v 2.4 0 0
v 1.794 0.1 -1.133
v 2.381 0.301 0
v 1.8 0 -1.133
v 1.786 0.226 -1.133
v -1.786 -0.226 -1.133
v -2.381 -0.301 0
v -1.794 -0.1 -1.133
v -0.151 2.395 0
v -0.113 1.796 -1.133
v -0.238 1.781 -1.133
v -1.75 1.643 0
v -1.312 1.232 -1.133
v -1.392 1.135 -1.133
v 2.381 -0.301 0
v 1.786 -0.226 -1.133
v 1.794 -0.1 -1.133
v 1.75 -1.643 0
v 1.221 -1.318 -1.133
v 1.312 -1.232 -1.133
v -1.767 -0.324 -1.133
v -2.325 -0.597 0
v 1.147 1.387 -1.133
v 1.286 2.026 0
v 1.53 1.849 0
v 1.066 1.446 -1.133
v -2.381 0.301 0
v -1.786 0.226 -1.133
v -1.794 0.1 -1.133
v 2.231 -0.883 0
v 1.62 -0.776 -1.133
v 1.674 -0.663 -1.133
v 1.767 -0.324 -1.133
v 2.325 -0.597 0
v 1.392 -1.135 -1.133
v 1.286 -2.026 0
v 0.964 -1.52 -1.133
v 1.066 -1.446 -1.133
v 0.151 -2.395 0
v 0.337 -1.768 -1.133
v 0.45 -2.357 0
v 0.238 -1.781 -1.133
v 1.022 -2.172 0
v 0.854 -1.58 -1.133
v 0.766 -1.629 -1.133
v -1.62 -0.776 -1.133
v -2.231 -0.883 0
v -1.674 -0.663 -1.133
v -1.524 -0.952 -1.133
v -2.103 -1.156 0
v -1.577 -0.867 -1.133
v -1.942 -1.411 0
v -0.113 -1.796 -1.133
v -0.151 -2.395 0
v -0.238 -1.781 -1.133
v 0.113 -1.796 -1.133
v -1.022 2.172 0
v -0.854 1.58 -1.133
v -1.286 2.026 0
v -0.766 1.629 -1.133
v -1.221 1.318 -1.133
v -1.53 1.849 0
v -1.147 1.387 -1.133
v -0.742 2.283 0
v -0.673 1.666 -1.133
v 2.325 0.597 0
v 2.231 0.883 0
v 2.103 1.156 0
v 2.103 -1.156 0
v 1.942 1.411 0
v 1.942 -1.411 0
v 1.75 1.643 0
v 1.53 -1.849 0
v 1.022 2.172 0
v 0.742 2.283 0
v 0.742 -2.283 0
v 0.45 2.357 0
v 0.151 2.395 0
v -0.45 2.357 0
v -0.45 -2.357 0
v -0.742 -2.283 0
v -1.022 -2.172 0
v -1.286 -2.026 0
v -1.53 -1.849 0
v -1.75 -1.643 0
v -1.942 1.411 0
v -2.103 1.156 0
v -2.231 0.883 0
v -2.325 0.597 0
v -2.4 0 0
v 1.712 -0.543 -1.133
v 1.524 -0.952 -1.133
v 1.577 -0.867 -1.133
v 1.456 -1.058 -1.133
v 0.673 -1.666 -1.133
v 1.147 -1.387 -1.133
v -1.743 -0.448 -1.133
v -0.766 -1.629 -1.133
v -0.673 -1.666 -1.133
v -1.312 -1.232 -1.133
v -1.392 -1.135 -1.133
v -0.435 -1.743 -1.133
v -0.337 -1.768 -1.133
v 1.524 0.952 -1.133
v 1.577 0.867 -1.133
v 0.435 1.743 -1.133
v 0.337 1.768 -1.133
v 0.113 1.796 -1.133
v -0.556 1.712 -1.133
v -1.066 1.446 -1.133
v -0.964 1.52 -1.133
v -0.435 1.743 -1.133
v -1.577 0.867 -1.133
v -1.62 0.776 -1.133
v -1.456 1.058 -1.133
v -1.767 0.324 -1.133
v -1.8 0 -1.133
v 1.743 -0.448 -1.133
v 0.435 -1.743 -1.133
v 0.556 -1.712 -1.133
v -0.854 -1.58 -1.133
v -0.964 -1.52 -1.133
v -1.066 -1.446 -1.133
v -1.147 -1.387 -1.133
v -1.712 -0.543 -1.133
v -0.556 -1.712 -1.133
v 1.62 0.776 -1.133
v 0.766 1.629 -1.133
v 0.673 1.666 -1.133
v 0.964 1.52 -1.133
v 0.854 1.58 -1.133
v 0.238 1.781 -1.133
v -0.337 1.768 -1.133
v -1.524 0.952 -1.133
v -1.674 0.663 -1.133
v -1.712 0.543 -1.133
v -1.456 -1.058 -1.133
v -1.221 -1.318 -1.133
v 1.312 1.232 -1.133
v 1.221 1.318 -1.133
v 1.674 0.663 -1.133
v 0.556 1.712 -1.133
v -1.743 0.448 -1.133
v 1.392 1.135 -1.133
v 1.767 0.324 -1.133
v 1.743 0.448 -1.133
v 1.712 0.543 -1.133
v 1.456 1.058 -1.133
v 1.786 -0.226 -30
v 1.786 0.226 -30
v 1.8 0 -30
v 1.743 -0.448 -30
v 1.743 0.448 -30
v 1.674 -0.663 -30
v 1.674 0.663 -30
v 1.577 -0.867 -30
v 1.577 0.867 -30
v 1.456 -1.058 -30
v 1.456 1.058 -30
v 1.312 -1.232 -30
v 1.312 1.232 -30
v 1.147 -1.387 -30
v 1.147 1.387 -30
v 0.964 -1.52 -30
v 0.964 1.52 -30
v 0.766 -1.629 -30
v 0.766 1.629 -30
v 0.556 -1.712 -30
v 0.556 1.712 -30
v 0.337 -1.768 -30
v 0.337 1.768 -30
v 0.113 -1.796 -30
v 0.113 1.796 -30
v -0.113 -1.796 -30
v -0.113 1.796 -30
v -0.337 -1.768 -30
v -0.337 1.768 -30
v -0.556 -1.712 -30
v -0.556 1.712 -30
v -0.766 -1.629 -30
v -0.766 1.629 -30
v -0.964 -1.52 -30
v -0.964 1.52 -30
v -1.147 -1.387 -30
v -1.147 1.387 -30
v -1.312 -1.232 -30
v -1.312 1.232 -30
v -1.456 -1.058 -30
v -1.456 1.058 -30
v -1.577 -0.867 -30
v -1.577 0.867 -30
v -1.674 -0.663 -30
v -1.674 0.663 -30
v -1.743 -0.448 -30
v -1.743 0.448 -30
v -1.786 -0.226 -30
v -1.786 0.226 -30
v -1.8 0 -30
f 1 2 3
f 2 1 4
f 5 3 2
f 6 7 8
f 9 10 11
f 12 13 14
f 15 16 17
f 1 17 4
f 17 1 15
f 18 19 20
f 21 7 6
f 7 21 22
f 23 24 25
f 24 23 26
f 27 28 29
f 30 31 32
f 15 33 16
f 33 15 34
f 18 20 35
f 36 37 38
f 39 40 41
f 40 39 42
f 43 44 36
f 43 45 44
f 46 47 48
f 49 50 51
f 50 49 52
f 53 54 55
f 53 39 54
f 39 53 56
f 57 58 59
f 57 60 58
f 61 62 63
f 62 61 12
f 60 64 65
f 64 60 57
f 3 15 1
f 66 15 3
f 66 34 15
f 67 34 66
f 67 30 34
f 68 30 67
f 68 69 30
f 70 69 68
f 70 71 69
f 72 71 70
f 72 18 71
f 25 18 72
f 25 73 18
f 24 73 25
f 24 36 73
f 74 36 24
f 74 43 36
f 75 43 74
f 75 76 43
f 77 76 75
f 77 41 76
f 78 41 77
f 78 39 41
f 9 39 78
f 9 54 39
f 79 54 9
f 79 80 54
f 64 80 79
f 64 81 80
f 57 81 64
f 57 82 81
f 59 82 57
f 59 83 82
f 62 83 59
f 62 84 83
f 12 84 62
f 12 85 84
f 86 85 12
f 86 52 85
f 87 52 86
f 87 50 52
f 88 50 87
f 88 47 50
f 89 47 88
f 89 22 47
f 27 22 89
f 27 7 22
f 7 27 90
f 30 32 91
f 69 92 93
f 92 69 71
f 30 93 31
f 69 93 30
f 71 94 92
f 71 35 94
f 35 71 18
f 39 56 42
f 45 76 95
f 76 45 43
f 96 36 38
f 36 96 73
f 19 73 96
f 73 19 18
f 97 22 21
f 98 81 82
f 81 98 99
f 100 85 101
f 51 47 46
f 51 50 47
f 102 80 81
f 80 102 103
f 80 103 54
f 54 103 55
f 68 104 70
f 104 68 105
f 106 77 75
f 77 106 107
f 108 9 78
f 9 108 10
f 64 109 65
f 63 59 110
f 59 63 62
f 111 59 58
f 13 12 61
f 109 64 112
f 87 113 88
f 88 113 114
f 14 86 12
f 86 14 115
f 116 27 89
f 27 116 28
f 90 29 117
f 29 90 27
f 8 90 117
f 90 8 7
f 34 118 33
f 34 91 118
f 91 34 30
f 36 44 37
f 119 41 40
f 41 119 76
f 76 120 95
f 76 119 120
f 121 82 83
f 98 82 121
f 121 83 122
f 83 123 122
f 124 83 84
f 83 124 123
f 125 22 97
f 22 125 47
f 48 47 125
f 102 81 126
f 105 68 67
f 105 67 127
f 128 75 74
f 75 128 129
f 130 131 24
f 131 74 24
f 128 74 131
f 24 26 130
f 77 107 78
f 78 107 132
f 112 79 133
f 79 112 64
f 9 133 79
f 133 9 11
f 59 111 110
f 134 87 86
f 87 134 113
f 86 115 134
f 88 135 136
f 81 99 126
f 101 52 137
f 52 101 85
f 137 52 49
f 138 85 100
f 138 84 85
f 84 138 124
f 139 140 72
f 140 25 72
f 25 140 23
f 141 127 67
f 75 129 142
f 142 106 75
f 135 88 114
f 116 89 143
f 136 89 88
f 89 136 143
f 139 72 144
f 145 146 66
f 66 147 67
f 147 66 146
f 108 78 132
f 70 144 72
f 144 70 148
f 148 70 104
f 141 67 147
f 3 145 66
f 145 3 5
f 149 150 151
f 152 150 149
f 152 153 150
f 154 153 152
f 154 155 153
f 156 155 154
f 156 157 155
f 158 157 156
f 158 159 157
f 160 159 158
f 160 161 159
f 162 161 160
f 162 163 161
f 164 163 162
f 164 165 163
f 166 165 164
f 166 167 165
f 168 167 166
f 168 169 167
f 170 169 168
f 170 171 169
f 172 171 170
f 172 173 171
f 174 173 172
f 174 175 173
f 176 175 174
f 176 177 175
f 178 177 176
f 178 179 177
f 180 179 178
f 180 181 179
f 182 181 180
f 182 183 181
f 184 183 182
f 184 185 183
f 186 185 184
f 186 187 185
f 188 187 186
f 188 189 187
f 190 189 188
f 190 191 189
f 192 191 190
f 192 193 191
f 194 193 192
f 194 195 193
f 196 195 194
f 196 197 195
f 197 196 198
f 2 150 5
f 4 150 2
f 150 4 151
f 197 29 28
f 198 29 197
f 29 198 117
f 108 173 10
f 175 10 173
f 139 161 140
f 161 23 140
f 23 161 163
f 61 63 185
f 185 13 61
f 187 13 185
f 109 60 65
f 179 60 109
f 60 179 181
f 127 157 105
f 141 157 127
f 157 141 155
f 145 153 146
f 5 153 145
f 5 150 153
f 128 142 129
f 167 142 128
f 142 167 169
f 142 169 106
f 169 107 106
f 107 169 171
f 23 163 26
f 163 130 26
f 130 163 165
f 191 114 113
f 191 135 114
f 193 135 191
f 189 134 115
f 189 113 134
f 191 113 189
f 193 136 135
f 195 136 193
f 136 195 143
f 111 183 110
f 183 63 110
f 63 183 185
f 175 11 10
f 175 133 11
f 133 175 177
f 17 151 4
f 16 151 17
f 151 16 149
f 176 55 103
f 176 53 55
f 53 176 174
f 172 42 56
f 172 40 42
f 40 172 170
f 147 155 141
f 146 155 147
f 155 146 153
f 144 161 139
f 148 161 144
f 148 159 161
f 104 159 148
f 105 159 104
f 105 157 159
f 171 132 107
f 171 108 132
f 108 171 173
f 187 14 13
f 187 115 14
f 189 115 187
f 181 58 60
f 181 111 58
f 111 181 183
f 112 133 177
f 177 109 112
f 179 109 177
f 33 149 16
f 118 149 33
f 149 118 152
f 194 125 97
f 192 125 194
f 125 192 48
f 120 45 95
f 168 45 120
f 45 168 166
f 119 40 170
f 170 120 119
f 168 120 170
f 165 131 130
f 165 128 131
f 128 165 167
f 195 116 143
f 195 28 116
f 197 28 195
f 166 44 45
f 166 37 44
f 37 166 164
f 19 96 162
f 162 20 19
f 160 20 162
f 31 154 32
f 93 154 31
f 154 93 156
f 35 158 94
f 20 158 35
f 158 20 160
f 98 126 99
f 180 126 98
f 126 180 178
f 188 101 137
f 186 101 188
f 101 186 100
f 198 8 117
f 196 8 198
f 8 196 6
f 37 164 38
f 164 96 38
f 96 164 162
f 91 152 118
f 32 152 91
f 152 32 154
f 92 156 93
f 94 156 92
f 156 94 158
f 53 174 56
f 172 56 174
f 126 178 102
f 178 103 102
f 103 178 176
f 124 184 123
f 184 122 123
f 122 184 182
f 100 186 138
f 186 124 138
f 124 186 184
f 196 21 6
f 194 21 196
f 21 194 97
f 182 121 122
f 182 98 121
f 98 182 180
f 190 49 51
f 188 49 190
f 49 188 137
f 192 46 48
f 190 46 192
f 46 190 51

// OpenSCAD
$fn = 50;


difference() {
	union() {
		translate(v = [0, 0, 0]) {
			rotate(a = [0, 0, 0]) {
				difference() {
					union() {
						translate(v = [0, 0, -1.7000000000]) {
							cylinder(h = 1.7000000000, r1 = 1.5000000000, r2 = 2.4000000000);
						}
						translate(v = [0, 0, -30.0000000000]) {
							cylinder(h = 30, r = 1.5000000000);
						}
						translate(v = [0, 0, -30.0000000000]) {
							cylinder(h = 30, r = 1.8000000000);
						}
						translate(v = [0, 0, -30.0000000000]) {
							cylinder(h = 30, r = 1.5000000000);
						}
					}
					union();
				}
			}
		}
	}
	union();
}
